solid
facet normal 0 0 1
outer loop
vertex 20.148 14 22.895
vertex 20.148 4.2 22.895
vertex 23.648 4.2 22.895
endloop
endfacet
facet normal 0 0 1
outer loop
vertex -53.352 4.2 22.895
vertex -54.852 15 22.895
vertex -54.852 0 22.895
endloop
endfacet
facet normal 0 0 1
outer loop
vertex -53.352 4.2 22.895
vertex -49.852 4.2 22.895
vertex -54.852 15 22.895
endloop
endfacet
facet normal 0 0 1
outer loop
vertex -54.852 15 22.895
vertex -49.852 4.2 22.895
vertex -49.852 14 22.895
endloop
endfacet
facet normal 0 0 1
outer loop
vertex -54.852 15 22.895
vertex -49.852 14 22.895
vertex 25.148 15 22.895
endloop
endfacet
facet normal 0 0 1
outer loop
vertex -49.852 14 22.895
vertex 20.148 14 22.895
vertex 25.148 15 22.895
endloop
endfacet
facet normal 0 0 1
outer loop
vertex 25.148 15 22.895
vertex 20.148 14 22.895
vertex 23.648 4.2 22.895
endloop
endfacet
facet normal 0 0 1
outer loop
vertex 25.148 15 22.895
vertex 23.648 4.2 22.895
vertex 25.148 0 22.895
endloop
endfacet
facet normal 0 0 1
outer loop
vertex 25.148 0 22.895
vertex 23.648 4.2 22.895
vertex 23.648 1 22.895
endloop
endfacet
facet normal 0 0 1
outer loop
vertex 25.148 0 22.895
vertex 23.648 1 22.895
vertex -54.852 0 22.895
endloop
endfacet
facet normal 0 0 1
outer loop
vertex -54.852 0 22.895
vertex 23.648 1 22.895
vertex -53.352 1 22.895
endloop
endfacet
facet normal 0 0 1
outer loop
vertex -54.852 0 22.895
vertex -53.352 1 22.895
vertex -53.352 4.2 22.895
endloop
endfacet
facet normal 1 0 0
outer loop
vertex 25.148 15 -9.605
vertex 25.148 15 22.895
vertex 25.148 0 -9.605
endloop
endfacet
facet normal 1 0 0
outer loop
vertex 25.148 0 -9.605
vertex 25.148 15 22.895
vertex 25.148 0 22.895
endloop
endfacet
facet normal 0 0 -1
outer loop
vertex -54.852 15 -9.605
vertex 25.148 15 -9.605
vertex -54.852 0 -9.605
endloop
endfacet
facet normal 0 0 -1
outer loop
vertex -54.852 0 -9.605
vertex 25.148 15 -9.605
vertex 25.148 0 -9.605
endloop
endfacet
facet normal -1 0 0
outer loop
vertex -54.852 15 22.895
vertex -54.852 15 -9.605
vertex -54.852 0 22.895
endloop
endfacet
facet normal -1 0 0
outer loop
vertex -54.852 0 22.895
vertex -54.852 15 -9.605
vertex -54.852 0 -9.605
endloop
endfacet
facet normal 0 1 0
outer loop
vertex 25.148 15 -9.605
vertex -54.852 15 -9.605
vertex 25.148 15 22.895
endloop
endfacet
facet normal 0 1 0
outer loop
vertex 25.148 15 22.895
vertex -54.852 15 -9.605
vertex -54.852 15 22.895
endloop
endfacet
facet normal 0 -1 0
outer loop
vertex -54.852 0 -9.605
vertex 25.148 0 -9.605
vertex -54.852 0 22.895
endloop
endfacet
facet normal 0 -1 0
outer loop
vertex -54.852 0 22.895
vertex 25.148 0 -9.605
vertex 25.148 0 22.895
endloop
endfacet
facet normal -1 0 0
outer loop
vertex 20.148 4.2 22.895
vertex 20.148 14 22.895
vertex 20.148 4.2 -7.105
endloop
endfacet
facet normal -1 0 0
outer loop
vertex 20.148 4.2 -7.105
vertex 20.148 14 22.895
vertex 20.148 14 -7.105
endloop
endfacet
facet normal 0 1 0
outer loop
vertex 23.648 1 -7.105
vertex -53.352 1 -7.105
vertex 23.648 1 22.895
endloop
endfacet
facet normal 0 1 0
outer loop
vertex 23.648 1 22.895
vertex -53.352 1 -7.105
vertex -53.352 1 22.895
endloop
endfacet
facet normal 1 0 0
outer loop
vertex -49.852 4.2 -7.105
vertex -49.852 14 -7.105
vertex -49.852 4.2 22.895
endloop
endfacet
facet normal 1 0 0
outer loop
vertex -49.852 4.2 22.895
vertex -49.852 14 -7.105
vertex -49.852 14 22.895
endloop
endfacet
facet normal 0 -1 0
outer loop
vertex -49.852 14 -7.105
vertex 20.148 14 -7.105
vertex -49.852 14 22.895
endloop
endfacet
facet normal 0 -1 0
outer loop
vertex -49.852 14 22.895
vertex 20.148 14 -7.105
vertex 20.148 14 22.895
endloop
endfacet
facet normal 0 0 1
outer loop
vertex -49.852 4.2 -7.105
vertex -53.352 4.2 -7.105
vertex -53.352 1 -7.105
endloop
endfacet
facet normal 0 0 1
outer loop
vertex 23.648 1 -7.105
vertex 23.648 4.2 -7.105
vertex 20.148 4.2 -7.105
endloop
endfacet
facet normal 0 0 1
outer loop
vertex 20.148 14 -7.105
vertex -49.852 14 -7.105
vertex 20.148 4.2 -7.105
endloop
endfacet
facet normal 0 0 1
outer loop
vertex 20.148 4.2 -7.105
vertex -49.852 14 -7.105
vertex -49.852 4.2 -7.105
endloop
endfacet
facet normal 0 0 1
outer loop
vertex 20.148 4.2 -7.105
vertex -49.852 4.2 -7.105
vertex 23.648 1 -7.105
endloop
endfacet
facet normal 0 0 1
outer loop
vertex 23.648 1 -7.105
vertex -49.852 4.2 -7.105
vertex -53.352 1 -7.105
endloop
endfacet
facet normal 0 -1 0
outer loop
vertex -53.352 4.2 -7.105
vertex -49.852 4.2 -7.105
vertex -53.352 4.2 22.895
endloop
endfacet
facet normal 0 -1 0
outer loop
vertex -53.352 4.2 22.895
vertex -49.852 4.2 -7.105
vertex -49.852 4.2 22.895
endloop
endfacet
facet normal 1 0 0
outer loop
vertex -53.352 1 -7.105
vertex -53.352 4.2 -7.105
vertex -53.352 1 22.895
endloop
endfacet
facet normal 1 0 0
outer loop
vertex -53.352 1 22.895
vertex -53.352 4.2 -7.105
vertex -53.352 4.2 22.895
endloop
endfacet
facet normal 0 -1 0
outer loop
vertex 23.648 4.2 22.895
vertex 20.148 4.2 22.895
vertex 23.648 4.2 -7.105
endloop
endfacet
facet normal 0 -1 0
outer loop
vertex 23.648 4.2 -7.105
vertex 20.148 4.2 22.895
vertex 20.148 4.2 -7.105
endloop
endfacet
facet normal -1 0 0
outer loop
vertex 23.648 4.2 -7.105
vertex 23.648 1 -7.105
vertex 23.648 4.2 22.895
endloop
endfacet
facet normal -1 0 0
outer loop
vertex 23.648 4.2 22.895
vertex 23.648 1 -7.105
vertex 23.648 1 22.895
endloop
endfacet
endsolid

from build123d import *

# Parameters (mm, degrees)
IZIM1_W                     = 80
IZIM1_H                     = 32.5
Y_KSEKLIK_EKSTR_ZYON2_DEPTH = 15
IZIM2_W                     = 70
IZIM2_H                     = 13
KES_EKSTR_ZYON1_DEPTH       = 30
IZIM3_W                     = 77
IZIM3_H                     = 3.2
KES_EKSTR_ZYON3_DEPTH       = 30


with BuildPart() as part:
    # Çizim1 → Yükseklik-Ekstrüzyon2 (new body)
    with BuildSketch(Plane(origin=(0, 0, 0), x_dir=(1, 0, 0), z_dir=(0, 1, 0))):
        with Locations((-14.85188748, -6.644700861)):
            Rectangle(IZIM1_W, IZIM1_H)
    extrude(amount=Y_KSEKLIK_EKSTR_ZYON2_DEPTH)

    # Çizim2 → Kes-Ekstrüzyon1 (cut)
    with BuildSketch(Plane.XY.offset(22.894700861)):
        with Locations((-14.85188748, 7.5)):
            Rectangle(IZIM2_W, IZIM2_H)
    extrude(amount=-KES_EKSTR_ZYON1_DEPTH, mode=Mode.SUBTRACT)

    # Çizim3 → Kes-Ekstrüzyon3 (cut)
    with BuildSketch(Plane.XY.offset(22.894700861)):
        with Locations((-14.85188748, 2.6)):
            Rectangle(IZIM3_W, IZIM3_H)
    extrude(amount=-KES_EKSTR_ZYON3_DEPTH, mode=Mode.SUBTRACT)


solid = part.part
